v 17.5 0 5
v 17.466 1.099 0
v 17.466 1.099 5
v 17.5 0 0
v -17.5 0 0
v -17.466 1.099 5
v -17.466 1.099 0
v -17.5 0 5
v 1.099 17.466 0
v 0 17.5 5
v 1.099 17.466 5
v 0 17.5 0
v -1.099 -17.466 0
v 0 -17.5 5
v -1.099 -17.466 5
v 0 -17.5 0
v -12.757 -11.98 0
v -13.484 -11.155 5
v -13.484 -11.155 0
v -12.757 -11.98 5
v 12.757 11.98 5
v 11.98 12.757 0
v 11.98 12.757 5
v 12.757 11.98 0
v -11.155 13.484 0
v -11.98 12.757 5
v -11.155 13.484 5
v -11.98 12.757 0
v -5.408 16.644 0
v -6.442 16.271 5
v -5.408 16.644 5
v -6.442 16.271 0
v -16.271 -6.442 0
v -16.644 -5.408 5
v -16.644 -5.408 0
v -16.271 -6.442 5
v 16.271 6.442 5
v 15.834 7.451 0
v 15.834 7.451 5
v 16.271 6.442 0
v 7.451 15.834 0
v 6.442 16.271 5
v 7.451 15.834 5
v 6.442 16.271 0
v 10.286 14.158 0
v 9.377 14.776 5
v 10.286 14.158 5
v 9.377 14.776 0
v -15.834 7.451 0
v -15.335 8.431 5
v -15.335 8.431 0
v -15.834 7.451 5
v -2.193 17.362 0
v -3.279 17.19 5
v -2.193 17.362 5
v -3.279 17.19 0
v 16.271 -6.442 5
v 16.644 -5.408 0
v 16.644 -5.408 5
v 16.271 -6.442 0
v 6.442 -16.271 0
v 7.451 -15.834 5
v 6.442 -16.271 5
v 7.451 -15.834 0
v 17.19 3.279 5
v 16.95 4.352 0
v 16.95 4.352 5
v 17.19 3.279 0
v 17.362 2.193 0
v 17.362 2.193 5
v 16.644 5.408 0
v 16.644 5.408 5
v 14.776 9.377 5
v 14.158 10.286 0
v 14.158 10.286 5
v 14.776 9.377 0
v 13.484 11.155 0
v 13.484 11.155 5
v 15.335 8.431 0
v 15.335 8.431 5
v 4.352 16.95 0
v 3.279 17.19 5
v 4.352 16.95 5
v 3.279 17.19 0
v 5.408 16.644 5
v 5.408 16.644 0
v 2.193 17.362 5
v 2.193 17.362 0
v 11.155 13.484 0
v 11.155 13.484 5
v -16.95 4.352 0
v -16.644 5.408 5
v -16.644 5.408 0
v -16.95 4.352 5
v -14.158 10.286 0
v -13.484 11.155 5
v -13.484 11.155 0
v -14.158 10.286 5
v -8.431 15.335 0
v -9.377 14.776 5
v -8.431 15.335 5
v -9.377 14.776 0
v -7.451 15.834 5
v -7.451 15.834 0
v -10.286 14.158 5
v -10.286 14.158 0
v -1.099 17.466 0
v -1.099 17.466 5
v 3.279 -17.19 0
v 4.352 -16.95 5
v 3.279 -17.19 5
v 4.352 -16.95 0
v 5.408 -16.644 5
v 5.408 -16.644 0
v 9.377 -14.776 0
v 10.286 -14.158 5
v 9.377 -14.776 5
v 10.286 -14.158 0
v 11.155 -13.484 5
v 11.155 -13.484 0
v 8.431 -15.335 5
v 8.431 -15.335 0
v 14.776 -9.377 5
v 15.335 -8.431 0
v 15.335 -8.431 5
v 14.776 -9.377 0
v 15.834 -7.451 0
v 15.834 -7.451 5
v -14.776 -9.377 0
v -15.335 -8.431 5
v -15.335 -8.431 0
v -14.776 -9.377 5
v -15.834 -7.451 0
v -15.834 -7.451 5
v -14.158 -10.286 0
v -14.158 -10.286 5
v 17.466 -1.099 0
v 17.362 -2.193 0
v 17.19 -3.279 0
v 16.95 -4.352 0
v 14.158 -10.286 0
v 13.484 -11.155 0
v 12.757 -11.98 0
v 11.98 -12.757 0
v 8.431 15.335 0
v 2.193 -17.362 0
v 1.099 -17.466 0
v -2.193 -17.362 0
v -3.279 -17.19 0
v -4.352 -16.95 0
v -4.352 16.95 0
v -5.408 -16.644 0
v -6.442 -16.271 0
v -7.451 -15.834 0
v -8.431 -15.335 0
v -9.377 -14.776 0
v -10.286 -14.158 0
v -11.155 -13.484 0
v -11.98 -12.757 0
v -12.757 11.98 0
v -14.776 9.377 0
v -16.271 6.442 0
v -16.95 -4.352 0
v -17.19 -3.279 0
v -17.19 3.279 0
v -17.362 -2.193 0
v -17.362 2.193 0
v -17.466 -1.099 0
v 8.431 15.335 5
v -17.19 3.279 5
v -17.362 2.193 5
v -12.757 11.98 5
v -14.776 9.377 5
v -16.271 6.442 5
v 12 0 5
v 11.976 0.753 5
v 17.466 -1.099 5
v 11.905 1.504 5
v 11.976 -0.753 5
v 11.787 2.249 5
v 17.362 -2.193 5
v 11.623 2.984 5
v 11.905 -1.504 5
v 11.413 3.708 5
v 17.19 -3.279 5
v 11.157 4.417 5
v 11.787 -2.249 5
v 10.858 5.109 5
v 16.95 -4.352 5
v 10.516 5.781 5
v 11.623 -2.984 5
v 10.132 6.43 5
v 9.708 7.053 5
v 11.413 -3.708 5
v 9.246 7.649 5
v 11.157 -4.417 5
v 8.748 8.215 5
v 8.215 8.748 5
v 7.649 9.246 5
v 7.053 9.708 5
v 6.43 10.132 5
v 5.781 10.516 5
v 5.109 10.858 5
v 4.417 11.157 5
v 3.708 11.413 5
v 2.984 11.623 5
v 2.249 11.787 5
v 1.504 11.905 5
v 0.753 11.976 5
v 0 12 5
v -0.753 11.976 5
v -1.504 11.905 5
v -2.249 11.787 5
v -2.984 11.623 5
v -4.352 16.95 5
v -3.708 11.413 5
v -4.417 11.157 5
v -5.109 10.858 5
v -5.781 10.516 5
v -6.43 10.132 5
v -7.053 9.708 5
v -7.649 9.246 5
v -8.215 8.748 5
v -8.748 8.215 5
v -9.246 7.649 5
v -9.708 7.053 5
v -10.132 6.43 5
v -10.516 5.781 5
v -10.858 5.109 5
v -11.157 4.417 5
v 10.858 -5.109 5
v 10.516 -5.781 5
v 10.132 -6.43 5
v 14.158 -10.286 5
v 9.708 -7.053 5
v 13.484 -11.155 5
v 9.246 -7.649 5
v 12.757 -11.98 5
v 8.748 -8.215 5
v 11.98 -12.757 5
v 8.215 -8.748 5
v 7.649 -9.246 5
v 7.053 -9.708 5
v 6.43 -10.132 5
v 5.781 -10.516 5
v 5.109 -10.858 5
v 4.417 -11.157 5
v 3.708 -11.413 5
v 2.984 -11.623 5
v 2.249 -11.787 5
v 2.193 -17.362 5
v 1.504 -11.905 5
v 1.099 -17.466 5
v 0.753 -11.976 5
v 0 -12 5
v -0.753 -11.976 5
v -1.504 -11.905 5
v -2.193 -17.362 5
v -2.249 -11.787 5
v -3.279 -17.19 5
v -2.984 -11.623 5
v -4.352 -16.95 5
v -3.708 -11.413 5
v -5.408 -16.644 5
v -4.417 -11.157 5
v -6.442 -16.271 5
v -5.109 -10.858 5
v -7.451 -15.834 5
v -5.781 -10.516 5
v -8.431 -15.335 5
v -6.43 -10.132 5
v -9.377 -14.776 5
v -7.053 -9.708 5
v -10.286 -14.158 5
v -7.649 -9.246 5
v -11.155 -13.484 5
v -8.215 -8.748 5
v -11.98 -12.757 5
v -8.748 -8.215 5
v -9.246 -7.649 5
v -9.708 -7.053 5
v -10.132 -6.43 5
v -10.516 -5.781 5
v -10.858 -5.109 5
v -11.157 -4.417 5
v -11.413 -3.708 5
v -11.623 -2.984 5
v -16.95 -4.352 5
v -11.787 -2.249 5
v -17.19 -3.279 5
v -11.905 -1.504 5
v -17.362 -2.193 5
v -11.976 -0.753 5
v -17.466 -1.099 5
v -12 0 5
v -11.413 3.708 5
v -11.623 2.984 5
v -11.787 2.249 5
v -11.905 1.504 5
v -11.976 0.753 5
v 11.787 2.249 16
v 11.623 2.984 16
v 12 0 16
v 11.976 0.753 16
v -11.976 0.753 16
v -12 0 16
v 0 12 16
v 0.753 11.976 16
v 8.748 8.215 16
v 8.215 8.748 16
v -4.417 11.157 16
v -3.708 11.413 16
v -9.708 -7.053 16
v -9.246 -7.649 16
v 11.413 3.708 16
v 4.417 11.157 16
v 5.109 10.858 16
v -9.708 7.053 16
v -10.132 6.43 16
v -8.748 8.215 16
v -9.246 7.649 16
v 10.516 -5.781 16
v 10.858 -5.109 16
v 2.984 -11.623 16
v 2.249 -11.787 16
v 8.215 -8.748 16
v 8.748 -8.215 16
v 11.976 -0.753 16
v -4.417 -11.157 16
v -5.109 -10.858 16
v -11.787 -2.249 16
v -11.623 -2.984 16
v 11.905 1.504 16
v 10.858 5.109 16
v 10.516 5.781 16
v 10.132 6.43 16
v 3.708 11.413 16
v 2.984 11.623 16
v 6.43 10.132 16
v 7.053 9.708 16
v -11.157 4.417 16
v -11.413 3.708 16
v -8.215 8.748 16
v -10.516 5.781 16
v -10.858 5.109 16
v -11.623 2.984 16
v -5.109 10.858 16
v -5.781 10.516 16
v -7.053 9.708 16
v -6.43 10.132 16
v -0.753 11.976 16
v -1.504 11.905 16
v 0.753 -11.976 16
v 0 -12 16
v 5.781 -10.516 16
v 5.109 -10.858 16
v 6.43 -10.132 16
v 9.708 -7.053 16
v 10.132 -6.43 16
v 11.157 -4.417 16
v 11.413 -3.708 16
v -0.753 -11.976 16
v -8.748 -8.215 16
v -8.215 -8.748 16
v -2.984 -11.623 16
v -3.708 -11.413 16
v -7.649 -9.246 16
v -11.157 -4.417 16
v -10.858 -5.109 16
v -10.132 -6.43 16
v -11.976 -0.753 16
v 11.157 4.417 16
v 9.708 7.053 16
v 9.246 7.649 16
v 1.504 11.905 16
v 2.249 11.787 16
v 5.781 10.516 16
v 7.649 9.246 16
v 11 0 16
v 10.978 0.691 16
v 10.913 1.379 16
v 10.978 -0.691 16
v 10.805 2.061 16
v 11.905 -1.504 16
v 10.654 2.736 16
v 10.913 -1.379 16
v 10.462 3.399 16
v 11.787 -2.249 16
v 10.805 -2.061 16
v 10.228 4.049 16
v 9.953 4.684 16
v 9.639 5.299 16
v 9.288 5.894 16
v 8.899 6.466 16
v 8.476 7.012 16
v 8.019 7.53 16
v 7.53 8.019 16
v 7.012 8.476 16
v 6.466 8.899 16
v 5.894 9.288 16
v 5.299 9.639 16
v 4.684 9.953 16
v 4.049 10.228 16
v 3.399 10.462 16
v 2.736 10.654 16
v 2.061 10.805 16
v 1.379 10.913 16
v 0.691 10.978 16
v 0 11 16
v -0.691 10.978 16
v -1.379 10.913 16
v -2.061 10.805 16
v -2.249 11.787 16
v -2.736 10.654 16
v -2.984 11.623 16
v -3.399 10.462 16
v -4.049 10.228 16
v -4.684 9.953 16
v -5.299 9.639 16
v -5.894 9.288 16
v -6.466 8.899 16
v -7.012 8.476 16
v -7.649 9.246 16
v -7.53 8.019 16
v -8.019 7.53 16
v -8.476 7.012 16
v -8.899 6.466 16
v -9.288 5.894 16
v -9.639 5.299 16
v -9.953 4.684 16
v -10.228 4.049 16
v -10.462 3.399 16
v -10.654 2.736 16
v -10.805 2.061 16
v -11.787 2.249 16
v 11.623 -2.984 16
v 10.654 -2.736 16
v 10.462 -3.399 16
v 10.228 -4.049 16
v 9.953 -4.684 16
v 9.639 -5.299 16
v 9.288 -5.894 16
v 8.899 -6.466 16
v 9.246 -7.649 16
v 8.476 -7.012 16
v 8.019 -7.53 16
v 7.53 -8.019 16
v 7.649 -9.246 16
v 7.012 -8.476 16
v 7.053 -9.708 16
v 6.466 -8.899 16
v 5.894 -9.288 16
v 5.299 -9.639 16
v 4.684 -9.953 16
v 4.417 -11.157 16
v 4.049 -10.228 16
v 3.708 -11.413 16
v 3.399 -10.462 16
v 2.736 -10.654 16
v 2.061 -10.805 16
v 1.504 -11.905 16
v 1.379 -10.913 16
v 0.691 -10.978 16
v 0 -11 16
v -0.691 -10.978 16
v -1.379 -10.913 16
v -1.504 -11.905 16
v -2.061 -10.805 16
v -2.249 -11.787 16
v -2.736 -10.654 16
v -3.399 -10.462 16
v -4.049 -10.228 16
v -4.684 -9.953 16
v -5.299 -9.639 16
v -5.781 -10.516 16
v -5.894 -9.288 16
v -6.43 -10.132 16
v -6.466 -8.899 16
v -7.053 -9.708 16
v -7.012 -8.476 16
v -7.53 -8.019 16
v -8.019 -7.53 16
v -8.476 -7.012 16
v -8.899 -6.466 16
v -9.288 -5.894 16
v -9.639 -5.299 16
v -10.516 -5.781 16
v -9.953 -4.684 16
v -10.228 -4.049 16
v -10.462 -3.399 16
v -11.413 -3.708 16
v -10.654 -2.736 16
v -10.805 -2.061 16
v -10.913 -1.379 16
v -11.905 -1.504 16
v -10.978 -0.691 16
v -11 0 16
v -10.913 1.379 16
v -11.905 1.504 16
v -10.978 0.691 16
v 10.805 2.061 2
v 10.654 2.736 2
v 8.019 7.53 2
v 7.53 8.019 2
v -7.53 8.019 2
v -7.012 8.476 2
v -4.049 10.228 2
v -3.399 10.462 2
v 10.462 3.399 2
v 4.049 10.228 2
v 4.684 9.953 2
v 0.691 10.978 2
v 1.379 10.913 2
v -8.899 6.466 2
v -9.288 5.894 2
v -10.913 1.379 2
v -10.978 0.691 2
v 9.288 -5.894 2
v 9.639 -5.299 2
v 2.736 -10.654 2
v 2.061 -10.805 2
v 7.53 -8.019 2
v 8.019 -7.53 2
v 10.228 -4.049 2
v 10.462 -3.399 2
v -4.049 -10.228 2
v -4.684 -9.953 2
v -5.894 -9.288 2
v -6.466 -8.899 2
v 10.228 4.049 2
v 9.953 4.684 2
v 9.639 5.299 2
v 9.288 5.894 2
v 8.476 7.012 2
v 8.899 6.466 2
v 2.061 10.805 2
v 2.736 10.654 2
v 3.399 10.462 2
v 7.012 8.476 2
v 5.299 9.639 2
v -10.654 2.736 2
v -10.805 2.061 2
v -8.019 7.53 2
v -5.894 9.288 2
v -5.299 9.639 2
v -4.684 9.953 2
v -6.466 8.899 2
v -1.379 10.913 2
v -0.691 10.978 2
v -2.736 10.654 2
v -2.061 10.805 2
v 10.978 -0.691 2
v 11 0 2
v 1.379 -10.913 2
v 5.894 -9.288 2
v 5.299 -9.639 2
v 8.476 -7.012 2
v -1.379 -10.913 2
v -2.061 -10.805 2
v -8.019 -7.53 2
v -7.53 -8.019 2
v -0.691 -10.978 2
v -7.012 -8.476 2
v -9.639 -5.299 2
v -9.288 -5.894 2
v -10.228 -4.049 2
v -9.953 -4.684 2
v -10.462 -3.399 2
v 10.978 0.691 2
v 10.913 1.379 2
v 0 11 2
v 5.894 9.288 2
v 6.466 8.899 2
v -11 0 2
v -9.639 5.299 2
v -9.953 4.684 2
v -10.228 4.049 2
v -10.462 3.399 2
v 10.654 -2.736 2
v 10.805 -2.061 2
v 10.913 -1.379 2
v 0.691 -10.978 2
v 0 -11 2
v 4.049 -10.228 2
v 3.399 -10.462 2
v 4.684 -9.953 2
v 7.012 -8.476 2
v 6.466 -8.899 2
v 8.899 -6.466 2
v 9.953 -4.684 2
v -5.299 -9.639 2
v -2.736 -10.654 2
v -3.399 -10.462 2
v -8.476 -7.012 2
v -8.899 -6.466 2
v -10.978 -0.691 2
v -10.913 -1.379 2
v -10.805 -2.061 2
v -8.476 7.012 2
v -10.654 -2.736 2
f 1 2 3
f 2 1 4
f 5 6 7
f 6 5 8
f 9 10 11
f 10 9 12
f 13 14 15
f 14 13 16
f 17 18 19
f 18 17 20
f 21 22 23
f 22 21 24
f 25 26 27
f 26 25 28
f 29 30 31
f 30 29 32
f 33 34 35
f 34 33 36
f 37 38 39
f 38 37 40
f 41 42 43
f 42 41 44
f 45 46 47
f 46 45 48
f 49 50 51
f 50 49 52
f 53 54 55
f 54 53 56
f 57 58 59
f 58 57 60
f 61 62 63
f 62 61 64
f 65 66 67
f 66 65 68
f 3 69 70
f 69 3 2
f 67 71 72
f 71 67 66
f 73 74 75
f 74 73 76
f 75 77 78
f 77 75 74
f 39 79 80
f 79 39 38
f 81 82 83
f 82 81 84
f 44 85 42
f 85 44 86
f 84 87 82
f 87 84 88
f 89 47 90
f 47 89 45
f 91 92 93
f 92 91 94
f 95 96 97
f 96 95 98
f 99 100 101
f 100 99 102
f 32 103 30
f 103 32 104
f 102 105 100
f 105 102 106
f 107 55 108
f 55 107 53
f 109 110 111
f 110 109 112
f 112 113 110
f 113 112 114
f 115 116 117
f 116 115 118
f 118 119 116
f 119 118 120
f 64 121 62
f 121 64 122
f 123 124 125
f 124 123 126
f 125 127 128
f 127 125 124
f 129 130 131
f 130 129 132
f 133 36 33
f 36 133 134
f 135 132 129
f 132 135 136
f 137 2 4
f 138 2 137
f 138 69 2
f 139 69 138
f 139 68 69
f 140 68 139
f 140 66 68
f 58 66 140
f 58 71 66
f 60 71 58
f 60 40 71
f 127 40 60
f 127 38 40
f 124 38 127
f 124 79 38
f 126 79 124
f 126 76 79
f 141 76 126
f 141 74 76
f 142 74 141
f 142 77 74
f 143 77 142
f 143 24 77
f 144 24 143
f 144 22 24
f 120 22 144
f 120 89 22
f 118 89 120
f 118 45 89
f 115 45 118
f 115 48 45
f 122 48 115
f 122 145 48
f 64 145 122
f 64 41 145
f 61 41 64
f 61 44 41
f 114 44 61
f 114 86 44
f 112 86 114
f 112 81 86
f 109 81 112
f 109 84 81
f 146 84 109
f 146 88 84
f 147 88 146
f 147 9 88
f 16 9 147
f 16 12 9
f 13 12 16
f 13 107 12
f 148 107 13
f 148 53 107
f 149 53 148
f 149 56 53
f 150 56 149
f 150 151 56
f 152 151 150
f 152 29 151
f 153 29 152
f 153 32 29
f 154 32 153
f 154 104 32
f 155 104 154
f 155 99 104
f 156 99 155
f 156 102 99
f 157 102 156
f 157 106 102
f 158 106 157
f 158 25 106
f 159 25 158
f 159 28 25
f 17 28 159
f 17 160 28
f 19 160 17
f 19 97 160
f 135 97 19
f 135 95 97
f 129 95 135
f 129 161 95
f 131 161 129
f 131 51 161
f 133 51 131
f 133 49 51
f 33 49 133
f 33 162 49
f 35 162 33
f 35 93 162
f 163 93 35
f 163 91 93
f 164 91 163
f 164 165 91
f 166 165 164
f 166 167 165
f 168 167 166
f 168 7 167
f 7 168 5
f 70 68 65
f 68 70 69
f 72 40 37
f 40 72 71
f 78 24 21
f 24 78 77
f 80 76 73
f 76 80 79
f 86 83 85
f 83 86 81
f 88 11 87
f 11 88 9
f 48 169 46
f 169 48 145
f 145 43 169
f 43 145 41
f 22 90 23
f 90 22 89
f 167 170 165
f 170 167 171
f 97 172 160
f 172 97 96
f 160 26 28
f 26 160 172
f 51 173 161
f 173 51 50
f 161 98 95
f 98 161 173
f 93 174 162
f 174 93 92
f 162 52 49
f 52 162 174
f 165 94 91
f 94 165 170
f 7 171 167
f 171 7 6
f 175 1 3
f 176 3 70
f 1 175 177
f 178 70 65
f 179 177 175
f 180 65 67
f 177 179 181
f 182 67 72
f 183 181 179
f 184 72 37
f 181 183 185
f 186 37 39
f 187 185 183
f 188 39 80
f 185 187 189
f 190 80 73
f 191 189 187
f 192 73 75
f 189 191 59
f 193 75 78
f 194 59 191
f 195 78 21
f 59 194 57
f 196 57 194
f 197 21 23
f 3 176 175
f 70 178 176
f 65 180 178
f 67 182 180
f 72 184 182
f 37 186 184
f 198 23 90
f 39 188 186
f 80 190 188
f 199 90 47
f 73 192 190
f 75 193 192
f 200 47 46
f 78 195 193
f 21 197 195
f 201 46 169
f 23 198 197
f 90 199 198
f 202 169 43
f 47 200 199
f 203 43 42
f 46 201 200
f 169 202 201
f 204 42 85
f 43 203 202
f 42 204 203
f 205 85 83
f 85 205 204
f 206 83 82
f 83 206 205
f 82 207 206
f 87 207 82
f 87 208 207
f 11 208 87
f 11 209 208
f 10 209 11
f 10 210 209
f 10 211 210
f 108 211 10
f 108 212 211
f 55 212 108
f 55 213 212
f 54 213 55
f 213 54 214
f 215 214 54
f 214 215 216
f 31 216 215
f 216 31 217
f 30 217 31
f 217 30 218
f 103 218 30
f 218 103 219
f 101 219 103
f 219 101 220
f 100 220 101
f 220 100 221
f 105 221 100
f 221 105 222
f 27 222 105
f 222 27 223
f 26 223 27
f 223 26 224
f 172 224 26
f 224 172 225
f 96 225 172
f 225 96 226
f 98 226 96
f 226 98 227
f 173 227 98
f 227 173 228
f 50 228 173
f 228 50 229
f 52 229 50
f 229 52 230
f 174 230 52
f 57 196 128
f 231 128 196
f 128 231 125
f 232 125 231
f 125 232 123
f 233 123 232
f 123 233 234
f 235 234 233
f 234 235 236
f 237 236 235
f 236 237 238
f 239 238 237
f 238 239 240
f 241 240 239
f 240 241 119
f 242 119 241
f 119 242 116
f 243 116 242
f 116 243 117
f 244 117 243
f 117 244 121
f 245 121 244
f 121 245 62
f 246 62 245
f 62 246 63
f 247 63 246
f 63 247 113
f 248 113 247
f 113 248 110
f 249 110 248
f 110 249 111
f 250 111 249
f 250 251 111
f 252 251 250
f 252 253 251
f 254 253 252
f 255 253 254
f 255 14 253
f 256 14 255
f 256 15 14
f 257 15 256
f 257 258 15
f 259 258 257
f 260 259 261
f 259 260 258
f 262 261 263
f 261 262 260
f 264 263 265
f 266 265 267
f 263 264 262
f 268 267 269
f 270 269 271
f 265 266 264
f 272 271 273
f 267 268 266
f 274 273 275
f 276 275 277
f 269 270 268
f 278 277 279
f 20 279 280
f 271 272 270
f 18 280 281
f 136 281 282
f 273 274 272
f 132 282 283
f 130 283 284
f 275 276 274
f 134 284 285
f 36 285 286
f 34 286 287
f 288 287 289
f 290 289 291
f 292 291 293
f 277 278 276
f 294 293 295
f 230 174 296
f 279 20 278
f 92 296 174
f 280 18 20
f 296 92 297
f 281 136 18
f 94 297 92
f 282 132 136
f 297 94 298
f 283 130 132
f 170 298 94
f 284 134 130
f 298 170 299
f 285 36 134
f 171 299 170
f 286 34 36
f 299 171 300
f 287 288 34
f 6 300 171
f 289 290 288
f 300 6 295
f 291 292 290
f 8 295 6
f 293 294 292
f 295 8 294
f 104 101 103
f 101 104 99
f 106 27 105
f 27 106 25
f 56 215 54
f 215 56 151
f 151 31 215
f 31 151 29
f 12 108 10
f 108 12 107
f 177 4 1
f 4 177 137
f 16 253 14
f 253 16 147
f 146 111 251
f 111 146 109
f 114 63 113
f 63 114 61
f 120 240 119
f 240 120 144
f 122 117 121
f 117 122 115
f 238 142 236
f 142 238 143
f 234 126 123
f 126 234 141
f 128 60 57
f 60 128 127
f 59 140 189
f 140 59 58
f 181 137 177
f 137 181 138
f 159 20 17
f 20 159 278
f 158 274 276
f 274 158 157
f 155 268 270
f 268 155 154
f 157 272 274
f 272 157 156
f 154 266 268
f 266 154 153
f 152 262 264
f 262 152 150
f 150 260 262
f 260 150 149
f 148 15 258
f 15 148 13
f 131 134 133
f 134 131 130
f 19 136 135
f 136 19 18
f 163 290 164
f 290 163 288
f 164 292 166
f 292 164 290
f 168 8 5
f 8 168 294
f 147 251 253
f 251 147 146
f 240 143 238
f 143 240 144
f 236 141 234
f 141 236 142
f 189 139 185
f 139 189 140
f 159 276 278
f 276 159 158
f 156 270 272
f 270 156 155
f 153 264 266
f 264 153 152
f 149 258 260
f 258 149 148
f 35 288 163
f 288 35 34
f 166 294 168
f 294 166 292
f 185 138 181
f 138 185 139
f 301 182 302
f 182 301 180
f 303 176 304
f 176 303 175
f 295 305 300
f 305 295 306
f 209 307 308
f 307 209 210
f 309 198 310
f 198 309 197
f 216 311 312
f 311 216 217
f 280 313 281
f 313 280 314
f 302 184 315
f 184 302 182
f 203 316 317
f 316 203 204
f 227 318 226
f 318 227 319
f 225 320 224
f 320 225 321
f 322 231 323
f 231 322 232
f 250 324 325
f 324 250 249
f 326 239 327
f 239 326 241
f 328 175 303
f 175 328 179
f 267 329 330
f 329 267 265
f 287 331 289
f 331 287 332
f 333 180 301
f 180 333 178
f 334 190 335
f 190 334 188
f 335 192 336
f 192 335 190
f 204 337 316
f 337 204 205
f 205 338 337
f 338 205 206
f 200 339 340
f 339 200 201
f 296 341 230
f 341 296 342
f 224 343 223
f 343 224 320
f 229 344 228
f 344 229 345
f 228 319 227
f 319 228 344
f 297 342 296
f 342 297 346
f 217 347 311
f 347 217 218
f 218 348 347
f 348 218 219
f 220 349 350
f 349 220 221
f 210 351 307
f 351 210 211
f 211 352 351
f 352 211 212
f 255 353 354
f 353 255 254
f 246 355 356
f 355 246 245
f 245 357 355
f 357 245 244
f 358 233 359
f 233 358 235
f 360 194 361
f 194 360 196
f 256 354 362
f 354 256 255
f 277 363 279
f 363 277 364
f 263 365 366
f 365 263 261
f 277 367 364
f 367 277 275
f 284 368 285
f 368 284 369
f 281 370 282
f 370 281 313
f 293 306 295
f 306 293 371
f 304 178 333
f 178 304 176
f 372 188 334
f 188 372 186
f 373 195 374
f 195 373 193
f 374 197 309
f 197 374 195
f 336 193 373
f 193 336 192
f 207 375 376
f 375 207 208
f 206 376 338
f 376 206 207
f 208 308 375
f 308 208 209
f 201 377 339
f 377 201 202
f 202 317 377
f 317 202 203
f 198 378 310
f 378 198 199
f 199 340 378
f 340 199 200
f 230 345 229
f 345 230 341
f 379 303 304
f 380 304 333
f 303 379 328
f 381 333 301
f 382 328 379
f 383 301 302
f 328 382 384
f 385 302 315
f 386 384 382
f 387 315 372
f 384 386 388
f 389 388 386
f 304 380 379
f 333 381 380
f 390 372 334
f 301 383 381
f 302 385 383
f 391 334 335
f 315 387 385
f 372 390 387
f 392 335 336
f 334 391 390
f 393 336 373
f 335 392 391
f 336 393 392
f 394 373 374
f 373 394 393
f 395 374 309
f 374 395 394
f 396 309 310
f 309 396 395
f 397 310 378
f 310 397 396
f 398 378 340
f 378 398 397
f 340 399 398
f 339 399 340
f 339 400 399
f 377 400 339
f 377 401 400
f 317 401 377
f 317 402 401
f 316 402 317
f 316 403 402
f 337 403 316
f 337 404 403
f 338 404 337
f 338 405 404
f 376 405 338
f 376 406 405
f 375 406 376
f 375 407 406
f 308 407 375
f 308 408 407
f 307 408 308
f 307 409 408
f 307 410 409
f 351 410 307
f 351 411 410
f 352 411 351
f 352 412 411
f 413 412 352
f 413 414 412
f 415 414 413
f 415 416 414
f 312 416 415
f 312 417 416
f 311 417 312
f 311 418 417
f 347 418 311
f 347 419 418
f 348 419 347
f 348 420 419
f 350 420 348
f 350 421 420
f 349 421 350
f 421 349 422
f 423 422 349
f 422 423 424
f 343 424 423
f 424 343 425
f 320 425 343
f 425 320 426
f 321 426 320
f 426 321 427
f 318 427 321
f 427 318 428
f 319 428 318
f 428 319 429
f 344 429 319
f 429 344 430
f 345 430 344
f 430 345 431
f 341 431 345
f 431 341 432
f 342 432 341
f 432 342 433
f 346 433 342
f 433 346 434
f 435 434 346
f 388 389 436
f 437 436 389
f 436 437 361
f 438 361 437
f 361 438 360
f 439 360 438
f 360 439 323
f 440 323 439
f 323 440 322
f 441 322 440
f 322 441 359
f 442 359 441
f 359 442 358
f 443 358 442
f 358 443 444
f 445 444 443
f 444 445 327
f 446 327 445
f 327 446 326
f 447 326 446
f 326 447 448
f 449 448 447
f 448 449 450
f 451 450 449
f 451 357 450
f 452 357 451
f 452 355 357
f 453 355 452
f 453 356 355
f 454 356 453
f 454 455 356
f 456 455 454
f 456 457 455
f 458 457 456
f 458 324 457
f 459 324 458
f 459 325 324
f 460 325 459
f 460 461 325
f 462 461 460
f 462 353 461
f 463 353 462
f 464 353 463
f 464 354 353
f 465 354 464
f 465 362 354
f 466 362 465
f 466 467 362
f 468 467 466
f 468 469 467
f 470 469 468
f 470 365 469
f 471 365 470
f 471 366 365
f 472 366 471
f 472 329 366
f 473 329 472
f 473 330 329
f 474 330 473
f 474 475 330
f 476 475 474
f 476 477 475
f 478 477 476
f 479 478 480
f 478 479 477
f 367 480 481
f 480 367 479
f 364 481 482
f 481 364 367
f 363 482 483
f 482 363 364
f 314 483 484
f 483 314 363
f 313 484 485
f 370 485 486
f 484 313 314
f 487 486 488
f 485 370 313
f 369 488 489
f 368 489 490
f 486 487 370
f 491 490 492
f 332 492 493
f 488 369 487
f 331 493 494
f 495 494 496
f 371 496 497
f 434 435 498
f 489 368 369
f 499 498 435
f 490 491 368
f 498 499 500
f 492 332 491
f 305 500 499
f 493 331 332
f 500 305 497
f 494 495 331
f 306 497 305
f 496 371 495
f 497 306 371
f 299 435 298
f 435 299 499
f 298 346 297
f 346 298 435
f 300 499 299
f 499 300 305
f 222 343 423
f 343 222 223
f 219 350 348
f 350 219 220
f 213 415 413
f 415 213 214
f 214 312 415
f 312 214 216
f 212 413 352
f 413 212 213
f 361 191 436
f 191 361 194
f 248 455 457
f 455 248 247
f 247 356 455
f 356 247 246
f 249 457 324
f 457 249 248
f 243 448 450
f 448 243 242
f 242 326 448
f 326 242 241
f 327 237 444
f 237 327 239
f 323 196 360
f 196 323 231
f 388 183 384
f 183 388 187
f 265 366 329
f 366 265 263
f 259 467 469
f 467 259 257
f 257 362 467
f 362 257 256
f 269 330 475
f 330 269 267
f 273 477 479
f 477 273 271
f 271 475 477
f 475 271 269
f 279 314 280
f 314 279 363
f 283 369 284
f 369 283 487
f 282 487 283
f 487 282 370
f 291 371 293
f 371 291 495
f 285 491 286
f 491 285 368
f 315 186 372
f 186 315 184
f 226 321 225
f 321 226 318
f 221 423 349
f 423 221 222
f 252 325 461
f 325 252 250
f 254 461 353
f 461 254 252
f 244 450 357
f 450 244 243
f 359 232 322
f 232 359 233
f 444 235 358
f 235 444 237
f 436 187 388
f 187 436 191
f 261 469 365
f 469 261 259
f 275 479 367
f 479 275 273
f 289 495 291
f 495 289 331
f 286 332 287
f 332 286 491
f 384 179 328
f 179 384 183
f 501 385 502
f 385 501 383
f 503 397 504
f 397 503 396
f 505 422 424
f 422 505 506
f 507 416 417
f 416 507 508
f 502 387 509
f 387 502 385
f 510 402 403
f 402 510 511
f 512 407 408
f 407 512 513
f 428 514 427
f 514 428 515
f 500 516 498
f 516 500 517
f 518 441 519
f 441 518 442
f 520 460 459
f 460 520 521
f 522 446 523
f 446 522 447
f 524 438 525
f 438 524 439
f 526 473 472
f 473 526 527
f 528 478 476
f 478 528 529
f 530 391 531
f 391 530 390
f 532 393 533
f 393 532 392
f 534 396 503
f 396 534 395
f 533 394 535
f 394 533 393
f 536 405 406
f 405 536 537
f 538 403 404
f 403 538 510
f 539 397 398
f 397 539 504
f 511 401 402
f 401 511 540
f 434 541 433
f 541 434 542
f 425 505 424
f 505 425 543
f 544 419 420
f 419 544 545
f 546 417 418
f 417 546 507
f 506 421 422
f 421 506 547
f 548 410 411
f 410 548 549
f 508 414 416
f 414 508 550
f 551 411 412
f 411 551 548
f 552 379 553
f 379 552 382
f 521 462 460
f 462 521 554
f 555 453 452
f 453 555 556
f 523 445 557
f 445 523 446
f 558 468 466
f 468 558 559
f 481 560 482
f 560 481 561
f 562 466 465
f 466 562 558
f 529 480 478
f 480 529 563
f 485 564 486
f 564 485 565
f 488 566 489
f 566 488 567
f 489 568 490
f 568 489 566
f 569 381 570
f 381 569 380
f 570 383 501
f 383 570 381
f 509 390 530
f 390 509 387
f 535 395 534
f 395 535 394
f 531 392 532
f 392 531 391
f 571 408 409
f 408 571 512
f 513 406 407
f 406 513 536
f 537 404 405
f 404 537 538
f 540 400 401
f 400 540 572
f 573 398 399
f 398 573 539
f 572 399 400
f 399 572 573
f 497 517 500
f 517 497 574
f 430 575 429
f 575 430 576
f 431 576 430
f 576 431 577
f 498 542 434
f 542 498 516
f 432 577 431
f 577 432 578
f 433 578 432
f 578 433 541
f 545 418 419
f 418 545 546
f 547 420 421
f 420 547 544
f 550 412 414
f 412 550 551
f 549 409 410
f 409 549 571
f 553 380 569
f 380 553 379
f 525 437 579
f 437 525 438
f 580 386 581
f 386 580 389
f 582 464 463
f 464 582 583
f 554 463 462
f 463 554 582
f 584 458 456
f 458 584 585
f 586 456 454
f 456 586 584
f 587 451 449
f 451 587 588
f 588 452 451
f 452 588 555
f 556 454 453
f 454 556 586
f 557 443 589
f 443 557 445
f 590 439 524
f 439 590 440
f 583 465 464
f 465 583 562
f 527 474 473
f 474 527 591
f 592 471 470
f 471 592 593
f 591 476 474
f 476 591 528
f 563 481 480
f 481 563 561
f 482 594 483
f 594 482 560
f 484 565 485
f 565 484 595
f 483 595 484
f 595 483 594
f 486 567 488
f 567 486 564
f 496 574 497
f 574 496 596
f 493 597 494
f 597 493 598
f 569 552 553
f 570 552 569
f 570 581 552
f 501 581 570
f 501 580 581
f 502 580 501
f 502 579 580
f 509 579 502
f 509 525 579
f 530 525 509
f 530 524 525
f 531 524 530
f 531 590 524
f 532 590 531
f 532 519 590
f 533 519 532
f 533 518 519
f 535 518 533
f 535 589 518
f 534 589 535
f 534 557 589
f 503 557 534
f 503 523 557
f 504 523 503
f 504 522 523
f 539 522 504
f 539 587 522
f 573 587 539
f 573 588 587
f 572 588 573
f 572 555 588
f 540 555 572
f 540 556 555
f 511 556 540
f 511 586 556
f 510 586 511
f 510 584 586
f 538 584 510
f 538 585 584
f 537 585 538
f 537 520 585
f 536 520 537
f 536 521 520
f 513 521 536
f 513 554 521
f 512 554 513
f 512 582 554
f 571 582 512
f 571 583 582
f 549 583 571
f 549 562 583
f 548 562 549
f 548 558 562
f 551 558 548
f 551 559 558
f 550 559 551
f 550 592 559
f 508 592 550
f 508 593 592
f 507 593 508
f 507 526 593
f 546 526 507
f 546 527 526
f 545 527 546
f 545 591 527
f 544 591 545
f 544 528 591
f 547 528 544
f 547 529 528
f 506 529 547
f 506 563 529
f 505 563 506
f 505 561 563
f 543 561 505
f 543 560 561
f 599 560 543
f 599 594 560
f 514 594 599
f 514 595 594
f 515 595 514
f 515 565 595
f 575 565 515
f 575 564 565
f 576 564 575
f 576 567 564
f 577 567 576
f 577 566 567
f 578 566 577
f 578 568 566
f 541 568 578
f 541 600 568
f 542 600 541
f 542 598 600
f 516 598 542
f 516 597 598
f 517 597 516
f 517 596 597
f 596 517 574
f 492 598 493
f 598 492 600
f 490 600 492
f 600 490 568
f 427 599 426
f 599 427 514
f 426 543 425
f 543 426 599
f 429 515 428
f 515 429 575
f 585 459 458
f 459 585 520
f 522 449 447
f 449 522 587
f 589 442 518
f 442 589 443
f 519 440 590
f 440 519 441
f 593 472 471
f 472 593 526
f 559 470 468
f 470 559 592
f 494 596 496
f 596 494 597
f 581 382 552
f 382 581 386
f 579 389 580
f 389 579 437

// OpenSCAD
//--------------------------------------------------------------
// Name: Подставка для цилиндрического повербанка. PwbStand.
// Version: 2.3
// Purpose: Замок.
// Author: Evgeny Klepikov
// E-mail: klek07@ya.ru
//
// Created: 25.09.2017
// Updated: 26.09.2017
// Copyright: (c) 2017 WildFox24
// Licence: GPL v3
//--------------------------------------------------------------
difference(){
    union(){    
        translate([0,0,0]) cylinder(h=5, d=35, $fn=100);
        translate([0,0,0]) cylinder(h=16, d=24, $fn=100);
    }
    translate([0,0,2]) cylinder(h=20, d=22, $fn=100);
}
